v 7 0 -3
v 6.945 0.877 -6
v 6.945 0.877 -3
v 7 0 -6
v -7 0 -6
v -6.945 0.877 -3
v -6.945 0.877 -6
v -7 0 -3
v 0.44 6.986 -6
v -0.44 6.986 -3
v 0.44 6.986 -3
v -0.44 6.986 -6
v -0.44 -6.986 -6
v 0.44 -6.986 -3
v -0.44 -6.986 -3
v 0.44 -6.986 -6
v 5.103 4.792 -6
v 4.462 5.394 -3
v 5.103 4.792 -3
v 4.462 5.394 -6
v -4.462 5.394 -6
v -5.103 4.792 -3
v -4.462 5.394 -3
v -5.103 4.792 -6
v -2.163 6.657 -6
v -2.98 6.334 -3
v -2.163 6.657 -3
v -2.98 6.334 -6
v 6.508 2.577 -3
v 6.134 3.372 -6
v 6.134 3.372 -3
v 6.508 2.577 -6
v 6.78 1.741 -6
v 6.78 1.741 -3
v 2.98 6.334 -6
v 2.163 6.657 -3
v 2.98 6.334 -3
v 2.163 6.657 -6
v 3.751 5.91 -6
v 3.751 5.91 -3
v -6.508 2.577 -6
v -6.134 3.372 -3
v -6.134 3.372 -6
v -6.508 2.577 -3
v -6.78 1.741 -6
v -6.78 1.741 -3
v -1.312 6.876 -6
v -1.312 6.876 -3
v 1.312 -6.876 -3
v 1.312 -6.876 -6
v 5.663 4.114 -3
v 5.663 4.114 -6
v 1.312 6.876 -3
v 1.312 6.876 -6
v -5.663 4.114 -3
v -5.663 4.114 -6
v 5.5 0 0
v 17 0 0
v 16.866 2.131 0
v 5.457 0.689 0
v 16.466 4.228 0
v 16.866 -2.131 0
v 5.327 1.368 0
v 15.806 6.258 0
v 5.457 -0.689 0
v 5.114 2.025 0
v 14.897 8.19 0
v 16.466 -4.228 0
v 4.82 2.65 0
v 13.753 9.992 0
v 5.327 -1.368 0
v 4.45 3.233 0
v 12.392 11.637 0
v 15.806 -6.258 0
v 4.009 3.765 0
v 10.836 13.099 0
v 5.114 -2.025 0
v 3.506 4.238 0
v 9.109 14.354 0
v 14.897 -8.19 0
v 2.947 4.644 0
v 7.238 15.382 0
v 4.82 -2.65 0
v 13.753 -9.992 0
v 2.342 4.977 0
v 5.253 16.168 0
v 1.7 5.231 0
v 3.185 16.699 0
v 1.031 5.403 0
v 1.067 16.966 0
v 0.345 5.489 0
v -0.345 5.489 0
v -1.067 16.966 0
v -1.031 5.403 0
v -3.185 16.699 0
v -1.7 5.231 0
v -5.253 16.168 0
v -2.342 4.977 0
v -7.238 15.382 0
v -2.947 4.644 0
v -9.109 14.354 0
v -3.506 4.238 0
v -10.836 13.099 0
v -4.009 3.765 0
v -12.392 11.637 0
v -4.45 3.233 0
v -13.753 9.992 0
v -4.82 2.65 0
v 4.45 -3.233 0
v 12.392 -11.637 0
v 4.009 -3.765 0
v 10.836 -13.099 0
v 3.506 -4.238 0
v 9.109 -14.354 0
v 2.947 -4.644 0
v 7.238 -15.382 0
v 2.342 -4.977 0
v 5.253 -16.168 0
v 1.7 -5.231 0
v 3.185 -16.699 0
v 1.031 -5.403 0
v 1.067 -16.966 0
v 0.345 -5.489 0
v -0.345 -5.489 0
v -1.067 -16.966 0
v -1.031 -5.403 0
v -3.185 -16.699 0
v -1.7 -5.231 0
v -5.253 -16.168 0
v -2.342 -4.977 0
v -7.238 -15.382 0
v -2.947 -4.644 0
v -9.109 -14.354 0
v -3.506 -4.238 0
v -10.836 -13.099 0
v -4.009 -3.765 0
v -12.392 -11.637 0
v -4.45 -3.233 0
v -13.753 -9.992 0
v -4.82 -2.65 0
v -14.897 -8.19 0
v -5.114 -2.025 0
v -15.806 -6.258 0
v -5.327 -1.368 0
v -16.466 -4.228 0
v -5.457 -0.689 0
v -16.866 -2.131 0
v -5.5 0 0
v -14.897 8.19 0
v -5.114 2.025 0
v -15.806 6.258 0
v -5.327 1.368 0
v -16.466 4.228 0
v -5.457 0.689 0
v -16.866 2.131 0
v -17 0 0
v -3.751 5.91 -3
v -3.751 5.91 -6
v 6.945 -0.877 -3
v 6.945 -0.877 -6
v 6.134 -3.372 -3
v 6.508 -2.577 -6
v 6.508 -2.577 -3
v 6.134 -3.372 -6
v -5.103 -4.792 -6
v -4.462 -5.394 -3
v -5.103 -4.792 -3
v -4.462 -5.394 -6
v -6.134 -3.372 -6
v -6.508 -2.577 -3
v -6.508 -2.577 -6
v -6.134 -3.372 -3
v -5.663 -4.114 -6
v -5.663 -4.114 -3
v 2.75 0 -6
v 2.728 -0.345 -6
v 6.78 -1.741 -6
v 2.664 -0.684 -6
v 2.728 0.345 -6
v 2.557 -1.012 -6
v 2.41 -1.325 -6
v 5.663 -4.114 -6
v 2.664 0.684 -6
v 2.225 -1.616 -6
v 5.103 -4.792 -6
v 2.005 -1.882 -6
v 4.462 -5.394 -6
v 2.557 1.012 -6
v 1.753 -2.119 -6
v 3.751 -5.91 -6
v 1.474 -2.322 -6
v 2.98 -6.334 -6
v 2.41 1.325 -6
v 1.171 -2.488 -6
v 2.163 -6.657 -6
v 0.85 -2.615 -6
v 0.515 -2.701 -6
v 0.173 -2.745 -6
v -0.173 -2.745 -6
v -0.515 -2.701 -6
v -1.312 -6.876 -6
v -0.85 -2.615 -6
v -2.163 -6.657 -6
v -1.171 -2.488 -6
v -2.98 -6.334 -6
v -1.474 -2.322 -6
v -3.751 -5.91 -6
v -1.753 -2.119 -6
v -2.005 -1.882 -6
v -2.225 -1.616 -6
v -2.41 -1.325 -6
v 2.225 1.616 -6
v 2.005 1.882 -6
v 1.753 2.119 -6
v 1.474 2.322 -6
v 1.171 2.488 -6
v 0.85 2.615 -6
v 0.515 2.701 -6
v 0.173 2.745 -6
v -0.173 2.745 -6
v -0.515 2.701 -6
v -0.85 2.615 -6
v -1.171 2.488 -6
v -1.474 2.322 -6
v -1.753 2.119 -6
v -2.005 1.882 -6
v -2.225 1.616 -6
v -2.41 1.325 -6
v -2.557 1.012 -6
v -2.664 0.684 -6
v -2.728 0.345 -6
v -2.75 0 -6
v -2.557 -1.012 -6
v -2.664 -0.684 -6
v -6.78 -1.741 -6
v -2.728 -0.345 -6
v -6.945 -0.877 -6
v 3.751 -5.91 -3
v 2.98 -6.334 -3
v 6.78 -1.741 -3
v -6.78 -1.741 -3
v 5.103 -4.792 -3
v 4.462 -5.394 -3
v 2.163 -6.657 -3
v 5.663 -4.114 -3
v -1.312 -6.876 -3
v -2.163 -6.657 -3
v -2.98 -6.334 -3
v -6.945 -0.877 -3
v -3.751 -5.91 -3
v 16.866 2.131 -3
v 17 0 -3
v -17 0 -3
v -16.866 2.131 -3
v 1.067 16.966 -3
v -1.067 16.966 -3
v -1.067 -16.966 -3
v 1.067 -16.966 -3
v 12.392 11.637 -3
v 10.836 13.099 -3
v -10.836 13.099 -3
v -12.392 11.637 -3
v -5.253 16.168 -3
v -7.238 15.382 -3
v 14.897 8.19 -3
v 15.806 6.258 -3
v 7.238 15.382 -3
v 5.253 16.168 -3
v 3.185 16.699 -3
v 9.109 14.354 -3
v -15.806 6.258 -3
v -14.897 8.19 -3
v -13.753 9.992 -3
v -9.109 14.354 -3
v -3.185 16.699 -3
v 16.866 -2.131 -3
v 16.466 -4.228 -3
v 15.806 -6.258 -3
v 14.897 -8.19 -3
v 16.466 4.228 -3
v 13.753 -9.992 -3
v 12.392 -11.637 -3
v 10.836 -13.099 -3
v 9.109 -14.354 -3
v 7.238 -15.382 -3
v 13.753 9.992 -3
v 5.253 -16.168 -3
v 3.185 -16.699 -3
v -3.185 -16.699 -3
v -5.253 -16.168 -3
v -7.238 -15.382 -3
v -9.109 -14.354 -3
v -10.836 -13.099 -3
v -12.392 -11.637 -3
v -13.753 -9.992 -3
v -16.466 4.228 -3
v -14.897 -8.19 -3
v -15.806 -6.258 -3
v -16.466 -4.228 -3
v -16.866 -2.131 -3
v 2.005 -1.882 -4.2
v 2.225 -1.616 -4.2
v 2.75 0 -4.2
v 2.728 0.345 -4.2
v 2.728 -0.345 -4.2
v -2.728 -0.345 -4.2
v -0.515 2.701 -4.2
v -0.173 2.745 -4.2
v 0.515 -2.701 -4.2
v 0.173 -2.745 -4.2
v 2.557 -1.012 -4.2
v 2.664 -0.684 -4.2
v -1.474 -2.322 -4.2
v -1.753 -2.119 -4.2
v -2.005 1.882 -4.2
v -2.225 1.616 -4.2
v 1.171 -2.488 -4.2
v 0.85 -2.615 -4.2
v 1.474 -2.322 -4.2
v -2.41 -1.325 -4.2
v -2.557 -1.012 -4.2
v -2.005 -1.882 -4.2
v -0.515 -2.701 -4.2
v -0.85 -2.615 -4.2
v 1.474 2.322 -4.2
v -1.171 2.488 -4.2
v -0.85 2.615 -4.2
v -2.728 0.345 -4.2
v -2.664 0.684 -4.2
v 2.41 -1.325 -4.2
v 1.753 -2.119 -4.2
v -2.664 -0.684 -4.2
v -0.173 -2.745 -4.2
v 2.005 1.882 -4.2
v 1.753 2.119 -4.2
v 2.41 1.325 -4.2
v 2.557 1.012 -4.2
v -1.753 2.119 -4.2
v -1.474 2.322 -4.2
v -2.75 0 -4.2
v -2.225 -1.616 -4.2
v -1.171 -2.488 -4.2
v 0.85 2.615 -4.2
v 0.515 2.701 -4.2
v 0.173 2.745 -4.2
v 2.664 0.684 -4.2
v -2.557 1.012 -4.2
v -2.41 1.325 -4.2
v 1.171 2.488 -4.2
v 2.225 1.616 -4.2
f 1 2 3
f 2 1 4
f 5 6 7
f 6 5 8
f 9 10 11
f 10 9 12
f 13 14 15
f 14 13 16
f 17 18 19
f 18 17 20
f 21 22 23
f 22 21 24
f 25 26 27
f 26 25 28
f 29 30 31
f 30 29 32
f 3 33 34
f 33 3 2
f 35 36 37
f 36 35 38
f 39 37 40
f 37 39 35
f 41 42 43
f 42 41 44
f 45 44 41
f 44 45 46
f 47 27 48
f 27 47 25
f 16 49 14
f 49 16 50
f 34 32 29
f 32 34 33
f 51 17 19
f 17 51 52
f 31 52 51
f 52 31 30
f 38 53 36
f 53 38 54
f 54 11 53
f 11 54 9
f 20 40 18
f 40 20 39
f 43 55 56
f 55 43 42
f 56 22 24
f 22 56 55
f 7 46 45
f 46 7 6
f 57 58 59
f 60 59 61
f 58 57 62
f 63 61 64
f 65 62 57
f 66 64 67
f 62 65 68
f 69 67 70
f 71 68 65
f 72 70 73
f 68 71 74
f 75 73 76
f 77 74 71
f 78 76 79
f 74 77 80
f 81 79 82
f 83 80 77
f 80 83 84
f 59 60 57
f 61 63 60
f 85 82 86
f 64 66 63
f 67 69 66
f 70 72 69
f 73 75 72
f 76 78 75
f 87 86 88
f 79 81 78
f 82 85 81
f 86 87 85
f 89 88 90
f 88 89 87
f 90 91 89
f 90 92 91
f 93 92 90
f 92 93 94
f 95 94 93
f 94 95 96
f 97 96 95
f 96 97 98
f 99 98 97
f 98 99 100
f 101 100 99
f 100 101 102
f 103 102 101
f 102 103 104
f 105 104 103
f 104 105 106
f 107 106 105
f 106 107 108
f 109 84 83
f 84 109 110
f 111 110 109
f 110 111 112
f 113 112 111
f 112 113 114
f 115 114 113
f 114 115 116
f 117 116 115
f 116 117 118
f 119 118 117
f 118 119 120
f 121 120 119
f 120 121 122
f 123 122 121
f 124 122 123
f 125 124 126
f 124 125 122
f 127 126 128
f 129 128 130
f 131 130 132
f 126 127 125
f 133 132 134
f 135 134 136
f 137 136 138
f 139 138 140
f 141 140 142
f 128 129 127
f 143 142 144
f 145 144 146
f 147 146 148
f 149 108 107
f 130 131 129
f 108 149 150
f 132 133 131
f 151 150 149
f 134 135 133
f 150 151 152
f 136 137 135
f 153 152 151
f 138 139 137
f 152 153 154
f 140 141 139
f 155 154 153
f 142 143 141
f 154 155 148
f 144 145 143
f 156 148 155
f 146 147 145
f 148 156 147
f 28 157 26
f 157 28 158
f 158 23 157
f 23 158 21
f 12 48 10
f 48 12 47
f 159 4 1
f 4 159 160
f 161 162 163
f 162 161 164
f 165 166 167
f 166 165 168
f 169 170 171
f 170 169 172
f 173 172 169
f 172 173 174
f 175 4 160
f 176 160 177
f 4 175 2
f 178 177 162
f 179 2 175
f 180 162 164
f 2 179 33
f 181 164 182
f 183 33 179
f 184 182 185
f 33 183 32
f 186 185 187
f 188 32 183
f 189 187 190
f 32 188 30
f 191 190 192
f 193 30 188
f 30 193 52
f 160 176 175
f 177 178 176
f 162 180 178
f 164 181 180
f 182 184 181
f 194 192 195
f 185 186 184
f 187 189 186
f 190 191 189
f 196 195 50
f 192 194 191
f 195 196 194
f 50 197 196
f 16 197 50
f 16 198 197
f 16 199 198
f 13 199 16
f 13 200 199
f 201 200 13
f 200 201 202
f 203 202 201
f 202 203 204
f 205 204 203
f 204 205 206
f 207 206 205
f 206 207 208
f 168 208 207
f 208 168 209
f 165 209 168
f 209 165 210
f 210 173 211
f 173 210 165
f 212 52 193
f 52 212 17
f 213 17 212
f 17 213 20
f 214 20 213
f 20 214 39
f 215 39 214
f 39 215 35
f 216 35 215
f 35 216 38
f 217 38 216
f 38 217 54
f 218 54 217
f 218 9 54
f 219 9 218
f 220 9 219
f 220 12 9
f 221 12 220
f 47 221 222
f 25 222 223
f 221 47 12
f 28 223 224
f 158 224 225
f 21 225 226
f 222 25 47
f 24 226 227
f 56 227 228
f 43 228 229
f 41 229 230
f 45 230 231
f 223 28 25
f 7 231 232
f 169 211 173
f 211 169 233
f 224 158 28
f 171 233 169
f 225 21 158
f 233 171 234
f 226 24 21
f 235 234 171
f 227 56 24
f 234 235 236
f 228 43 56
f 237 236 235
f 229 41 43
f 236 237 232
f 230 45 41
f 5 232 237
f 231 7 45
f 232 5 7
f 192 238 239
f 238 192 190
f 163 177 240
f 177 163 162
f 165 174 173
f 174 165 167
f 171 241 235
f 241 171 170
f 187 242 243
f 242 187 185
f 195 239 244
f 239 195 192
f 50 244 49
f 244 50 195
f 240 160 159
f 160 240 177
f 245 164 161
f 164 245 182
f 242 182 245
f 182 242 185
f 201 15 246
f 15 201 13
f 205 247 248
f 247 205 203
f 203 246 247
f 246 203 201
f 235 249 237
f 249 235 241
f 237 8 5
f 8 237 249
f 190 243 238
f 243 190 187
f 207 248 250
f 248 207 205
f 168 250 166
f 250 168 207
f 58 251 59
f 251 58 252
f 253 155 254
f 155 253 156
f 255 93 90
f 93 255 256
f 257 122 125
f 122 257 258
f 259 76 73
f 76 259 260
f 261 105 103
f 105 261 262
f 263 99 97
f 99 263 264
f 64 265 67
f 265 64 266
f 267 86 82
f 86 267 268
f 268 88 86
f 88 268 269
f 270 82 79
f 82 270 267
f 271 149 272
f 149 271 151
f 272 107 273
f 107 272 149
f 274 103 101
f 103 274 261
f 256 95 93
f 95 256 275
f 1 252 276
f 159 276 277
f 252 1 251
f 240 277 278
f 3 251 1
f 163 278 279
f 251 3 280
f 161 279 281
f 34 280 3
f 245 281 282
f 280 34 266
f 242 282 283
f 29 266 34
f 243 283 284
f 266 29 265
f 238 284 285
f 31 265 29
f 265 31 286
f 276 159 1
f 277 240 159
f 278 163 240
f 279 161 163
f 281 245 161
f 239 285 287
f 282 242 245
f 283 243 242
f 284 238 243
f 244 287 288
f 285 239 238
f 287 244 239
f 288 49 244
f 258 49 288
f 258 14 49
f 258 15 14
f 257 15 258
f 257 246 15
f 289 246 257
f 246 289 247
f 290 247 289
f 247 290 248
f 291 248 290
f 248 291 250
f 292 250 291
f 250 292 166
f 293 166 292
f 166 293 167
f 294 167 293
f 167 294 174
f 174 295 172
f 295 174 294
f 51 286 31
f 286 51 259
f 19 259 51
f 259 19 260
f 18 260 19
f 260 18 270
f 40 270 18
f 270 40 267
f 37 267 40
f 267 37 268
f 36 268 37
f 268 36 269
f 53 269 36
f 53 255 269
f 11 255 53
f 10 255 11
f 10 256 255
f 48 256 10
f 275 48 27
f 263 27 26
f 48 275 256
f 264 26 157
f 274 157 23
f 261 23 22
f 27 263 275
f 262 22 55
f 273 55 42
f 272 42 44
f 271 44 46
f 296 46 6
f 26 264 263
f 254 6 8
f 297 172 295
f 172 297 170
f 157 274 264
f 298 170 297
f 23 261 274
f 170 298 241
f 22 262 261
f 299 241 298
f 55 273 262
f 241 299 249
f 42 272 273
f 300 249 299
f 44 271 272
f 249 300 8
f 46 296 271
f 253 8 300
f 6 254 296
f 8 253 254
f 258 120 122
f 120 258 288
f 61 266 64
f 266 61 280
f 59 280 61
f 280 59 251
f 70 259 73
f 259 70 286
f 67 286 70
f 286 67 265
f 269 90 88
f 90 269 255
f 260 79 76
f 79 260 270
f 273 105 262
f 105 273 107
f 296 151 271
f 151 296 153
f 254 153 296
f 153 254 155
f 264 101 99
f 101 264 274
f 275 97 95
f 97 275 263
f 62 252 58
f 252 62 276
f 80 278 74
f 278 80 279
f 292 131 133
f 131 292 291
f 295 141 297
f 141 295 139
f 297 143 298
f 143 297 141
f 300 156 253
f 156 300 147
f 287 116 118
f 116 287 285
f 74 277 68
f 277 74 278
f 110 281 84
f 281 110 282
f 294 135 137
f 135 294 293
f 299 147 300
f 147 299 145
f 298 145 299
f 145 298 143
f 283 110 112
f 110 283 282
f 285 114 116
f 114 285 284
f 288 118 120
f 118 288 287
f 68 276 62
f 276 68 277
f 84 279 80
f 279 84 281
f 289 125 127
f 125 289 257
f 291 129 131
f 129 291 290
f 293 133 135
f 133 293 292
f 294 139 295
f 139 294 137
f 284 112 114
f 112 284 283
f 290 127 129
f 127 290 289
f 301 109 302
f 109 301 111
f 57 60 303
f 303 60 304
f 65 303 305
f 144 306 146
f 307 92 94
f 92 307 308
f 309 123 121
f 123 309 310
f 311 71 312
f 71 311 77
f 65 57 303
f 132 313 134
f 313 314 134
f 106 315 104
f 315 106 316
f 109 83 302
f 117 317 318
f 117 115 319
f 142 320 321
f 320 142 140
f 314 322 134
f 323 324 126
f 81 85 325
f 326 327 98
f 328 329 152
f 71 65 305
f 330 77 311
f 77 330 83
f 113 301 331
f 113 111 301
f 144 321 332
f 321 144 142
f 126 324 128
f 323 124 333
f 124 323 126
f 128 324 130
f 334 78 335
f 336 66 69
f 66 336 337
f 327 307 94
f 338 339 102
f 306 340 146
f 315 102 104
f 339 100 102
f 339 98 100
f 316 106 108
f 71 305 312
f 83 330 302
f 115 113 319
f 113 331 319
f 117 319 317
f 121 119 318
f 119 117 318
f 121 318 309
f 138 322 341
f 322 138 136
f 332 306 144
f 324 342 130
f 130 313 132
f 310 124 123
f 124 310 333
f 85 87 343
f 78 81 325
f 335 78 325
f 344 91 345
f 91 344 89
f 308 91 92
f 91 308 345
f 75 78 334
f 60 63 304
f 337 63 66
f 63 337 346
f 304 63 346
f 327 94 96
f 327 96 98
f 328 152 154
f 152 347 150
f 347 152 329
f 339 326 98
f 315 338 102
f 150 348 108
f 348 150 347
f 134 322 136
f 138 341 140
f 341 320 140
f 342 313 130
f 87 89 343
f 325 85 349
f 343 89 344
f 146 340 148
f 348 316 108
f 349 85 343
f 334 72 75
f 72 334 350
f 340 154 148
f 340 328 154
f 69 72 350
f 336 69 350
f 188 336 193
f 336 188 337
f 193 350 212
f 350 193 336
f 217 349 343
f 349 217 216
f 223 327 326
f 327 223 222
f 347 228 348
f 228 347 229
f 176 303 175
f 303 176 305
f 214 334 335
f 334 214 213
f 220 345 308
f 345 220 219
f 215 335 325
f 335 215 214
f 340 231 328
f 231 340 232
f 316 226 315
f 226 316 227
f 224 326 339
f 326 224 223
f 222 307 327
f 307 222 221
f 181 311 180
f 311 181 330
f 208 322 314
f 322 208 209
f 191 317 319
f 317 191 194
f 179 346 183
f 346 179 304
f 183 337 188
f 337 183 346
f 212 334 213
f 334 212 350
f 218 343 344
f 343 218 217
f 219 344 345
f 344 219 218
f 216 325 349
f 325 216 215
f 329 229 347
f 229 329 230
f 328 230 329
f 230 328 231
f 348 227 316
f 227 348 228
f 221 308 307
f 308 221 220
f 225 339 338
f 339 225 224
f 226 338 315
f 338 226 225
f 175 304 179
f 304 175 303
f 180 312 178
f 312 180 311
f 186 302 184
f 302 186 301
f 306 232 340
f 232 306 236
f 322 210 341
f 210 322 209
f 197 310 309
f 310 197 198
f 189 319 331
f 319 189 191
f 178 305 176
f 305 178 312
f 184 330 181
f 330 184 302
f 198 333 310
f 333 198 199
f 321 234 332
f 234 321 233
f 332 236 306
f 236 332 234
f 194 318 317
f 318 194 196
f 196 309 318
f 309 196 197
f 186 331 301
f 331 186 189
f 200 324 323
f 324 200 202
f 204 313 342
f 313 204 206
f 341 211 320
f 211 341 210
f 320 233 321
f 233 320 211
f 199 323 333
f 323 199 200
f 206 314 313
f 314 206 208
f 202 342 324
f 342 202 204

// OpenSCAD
$fn = 50;


difference() {
	union() {
		translate(v = [0, 0, -6.0000000000]) {
			cylinder(h = 6, r = 7.0000000000);
		}
		translate(v = [0, 0, -3.0000000000]) {
			cylinder(h = 3, r = 17.0000000000);
		}
	}
	union() {
		translate(v = [0, 0, 0]) {
			rotate(a = [0, 0, 0]) {
				difference() {
					union() {
						#translate(v = [0, 0, -6.0000000000]) {
							cylinder(h = 6, r = 2.2500000000);
						}
						#translate(v = [0, 0, -4.2000000000]) {
							cylinder(h = 4.2000000000, r = 7.0000000000, r1 = 2.7500000000, r2 = 5.5000000000);
						}
						#translate(v = [0, 0, -6.0000000000]) {
							cylinder(h = 6, r = 2.7500000000);
						}
						#translate(v = [0, 0, -6.0000000000]) {
							cylinder(h = 6, r = 2.2500000000);
						}
					}
					union();
				}
			}
		}
	}
}
